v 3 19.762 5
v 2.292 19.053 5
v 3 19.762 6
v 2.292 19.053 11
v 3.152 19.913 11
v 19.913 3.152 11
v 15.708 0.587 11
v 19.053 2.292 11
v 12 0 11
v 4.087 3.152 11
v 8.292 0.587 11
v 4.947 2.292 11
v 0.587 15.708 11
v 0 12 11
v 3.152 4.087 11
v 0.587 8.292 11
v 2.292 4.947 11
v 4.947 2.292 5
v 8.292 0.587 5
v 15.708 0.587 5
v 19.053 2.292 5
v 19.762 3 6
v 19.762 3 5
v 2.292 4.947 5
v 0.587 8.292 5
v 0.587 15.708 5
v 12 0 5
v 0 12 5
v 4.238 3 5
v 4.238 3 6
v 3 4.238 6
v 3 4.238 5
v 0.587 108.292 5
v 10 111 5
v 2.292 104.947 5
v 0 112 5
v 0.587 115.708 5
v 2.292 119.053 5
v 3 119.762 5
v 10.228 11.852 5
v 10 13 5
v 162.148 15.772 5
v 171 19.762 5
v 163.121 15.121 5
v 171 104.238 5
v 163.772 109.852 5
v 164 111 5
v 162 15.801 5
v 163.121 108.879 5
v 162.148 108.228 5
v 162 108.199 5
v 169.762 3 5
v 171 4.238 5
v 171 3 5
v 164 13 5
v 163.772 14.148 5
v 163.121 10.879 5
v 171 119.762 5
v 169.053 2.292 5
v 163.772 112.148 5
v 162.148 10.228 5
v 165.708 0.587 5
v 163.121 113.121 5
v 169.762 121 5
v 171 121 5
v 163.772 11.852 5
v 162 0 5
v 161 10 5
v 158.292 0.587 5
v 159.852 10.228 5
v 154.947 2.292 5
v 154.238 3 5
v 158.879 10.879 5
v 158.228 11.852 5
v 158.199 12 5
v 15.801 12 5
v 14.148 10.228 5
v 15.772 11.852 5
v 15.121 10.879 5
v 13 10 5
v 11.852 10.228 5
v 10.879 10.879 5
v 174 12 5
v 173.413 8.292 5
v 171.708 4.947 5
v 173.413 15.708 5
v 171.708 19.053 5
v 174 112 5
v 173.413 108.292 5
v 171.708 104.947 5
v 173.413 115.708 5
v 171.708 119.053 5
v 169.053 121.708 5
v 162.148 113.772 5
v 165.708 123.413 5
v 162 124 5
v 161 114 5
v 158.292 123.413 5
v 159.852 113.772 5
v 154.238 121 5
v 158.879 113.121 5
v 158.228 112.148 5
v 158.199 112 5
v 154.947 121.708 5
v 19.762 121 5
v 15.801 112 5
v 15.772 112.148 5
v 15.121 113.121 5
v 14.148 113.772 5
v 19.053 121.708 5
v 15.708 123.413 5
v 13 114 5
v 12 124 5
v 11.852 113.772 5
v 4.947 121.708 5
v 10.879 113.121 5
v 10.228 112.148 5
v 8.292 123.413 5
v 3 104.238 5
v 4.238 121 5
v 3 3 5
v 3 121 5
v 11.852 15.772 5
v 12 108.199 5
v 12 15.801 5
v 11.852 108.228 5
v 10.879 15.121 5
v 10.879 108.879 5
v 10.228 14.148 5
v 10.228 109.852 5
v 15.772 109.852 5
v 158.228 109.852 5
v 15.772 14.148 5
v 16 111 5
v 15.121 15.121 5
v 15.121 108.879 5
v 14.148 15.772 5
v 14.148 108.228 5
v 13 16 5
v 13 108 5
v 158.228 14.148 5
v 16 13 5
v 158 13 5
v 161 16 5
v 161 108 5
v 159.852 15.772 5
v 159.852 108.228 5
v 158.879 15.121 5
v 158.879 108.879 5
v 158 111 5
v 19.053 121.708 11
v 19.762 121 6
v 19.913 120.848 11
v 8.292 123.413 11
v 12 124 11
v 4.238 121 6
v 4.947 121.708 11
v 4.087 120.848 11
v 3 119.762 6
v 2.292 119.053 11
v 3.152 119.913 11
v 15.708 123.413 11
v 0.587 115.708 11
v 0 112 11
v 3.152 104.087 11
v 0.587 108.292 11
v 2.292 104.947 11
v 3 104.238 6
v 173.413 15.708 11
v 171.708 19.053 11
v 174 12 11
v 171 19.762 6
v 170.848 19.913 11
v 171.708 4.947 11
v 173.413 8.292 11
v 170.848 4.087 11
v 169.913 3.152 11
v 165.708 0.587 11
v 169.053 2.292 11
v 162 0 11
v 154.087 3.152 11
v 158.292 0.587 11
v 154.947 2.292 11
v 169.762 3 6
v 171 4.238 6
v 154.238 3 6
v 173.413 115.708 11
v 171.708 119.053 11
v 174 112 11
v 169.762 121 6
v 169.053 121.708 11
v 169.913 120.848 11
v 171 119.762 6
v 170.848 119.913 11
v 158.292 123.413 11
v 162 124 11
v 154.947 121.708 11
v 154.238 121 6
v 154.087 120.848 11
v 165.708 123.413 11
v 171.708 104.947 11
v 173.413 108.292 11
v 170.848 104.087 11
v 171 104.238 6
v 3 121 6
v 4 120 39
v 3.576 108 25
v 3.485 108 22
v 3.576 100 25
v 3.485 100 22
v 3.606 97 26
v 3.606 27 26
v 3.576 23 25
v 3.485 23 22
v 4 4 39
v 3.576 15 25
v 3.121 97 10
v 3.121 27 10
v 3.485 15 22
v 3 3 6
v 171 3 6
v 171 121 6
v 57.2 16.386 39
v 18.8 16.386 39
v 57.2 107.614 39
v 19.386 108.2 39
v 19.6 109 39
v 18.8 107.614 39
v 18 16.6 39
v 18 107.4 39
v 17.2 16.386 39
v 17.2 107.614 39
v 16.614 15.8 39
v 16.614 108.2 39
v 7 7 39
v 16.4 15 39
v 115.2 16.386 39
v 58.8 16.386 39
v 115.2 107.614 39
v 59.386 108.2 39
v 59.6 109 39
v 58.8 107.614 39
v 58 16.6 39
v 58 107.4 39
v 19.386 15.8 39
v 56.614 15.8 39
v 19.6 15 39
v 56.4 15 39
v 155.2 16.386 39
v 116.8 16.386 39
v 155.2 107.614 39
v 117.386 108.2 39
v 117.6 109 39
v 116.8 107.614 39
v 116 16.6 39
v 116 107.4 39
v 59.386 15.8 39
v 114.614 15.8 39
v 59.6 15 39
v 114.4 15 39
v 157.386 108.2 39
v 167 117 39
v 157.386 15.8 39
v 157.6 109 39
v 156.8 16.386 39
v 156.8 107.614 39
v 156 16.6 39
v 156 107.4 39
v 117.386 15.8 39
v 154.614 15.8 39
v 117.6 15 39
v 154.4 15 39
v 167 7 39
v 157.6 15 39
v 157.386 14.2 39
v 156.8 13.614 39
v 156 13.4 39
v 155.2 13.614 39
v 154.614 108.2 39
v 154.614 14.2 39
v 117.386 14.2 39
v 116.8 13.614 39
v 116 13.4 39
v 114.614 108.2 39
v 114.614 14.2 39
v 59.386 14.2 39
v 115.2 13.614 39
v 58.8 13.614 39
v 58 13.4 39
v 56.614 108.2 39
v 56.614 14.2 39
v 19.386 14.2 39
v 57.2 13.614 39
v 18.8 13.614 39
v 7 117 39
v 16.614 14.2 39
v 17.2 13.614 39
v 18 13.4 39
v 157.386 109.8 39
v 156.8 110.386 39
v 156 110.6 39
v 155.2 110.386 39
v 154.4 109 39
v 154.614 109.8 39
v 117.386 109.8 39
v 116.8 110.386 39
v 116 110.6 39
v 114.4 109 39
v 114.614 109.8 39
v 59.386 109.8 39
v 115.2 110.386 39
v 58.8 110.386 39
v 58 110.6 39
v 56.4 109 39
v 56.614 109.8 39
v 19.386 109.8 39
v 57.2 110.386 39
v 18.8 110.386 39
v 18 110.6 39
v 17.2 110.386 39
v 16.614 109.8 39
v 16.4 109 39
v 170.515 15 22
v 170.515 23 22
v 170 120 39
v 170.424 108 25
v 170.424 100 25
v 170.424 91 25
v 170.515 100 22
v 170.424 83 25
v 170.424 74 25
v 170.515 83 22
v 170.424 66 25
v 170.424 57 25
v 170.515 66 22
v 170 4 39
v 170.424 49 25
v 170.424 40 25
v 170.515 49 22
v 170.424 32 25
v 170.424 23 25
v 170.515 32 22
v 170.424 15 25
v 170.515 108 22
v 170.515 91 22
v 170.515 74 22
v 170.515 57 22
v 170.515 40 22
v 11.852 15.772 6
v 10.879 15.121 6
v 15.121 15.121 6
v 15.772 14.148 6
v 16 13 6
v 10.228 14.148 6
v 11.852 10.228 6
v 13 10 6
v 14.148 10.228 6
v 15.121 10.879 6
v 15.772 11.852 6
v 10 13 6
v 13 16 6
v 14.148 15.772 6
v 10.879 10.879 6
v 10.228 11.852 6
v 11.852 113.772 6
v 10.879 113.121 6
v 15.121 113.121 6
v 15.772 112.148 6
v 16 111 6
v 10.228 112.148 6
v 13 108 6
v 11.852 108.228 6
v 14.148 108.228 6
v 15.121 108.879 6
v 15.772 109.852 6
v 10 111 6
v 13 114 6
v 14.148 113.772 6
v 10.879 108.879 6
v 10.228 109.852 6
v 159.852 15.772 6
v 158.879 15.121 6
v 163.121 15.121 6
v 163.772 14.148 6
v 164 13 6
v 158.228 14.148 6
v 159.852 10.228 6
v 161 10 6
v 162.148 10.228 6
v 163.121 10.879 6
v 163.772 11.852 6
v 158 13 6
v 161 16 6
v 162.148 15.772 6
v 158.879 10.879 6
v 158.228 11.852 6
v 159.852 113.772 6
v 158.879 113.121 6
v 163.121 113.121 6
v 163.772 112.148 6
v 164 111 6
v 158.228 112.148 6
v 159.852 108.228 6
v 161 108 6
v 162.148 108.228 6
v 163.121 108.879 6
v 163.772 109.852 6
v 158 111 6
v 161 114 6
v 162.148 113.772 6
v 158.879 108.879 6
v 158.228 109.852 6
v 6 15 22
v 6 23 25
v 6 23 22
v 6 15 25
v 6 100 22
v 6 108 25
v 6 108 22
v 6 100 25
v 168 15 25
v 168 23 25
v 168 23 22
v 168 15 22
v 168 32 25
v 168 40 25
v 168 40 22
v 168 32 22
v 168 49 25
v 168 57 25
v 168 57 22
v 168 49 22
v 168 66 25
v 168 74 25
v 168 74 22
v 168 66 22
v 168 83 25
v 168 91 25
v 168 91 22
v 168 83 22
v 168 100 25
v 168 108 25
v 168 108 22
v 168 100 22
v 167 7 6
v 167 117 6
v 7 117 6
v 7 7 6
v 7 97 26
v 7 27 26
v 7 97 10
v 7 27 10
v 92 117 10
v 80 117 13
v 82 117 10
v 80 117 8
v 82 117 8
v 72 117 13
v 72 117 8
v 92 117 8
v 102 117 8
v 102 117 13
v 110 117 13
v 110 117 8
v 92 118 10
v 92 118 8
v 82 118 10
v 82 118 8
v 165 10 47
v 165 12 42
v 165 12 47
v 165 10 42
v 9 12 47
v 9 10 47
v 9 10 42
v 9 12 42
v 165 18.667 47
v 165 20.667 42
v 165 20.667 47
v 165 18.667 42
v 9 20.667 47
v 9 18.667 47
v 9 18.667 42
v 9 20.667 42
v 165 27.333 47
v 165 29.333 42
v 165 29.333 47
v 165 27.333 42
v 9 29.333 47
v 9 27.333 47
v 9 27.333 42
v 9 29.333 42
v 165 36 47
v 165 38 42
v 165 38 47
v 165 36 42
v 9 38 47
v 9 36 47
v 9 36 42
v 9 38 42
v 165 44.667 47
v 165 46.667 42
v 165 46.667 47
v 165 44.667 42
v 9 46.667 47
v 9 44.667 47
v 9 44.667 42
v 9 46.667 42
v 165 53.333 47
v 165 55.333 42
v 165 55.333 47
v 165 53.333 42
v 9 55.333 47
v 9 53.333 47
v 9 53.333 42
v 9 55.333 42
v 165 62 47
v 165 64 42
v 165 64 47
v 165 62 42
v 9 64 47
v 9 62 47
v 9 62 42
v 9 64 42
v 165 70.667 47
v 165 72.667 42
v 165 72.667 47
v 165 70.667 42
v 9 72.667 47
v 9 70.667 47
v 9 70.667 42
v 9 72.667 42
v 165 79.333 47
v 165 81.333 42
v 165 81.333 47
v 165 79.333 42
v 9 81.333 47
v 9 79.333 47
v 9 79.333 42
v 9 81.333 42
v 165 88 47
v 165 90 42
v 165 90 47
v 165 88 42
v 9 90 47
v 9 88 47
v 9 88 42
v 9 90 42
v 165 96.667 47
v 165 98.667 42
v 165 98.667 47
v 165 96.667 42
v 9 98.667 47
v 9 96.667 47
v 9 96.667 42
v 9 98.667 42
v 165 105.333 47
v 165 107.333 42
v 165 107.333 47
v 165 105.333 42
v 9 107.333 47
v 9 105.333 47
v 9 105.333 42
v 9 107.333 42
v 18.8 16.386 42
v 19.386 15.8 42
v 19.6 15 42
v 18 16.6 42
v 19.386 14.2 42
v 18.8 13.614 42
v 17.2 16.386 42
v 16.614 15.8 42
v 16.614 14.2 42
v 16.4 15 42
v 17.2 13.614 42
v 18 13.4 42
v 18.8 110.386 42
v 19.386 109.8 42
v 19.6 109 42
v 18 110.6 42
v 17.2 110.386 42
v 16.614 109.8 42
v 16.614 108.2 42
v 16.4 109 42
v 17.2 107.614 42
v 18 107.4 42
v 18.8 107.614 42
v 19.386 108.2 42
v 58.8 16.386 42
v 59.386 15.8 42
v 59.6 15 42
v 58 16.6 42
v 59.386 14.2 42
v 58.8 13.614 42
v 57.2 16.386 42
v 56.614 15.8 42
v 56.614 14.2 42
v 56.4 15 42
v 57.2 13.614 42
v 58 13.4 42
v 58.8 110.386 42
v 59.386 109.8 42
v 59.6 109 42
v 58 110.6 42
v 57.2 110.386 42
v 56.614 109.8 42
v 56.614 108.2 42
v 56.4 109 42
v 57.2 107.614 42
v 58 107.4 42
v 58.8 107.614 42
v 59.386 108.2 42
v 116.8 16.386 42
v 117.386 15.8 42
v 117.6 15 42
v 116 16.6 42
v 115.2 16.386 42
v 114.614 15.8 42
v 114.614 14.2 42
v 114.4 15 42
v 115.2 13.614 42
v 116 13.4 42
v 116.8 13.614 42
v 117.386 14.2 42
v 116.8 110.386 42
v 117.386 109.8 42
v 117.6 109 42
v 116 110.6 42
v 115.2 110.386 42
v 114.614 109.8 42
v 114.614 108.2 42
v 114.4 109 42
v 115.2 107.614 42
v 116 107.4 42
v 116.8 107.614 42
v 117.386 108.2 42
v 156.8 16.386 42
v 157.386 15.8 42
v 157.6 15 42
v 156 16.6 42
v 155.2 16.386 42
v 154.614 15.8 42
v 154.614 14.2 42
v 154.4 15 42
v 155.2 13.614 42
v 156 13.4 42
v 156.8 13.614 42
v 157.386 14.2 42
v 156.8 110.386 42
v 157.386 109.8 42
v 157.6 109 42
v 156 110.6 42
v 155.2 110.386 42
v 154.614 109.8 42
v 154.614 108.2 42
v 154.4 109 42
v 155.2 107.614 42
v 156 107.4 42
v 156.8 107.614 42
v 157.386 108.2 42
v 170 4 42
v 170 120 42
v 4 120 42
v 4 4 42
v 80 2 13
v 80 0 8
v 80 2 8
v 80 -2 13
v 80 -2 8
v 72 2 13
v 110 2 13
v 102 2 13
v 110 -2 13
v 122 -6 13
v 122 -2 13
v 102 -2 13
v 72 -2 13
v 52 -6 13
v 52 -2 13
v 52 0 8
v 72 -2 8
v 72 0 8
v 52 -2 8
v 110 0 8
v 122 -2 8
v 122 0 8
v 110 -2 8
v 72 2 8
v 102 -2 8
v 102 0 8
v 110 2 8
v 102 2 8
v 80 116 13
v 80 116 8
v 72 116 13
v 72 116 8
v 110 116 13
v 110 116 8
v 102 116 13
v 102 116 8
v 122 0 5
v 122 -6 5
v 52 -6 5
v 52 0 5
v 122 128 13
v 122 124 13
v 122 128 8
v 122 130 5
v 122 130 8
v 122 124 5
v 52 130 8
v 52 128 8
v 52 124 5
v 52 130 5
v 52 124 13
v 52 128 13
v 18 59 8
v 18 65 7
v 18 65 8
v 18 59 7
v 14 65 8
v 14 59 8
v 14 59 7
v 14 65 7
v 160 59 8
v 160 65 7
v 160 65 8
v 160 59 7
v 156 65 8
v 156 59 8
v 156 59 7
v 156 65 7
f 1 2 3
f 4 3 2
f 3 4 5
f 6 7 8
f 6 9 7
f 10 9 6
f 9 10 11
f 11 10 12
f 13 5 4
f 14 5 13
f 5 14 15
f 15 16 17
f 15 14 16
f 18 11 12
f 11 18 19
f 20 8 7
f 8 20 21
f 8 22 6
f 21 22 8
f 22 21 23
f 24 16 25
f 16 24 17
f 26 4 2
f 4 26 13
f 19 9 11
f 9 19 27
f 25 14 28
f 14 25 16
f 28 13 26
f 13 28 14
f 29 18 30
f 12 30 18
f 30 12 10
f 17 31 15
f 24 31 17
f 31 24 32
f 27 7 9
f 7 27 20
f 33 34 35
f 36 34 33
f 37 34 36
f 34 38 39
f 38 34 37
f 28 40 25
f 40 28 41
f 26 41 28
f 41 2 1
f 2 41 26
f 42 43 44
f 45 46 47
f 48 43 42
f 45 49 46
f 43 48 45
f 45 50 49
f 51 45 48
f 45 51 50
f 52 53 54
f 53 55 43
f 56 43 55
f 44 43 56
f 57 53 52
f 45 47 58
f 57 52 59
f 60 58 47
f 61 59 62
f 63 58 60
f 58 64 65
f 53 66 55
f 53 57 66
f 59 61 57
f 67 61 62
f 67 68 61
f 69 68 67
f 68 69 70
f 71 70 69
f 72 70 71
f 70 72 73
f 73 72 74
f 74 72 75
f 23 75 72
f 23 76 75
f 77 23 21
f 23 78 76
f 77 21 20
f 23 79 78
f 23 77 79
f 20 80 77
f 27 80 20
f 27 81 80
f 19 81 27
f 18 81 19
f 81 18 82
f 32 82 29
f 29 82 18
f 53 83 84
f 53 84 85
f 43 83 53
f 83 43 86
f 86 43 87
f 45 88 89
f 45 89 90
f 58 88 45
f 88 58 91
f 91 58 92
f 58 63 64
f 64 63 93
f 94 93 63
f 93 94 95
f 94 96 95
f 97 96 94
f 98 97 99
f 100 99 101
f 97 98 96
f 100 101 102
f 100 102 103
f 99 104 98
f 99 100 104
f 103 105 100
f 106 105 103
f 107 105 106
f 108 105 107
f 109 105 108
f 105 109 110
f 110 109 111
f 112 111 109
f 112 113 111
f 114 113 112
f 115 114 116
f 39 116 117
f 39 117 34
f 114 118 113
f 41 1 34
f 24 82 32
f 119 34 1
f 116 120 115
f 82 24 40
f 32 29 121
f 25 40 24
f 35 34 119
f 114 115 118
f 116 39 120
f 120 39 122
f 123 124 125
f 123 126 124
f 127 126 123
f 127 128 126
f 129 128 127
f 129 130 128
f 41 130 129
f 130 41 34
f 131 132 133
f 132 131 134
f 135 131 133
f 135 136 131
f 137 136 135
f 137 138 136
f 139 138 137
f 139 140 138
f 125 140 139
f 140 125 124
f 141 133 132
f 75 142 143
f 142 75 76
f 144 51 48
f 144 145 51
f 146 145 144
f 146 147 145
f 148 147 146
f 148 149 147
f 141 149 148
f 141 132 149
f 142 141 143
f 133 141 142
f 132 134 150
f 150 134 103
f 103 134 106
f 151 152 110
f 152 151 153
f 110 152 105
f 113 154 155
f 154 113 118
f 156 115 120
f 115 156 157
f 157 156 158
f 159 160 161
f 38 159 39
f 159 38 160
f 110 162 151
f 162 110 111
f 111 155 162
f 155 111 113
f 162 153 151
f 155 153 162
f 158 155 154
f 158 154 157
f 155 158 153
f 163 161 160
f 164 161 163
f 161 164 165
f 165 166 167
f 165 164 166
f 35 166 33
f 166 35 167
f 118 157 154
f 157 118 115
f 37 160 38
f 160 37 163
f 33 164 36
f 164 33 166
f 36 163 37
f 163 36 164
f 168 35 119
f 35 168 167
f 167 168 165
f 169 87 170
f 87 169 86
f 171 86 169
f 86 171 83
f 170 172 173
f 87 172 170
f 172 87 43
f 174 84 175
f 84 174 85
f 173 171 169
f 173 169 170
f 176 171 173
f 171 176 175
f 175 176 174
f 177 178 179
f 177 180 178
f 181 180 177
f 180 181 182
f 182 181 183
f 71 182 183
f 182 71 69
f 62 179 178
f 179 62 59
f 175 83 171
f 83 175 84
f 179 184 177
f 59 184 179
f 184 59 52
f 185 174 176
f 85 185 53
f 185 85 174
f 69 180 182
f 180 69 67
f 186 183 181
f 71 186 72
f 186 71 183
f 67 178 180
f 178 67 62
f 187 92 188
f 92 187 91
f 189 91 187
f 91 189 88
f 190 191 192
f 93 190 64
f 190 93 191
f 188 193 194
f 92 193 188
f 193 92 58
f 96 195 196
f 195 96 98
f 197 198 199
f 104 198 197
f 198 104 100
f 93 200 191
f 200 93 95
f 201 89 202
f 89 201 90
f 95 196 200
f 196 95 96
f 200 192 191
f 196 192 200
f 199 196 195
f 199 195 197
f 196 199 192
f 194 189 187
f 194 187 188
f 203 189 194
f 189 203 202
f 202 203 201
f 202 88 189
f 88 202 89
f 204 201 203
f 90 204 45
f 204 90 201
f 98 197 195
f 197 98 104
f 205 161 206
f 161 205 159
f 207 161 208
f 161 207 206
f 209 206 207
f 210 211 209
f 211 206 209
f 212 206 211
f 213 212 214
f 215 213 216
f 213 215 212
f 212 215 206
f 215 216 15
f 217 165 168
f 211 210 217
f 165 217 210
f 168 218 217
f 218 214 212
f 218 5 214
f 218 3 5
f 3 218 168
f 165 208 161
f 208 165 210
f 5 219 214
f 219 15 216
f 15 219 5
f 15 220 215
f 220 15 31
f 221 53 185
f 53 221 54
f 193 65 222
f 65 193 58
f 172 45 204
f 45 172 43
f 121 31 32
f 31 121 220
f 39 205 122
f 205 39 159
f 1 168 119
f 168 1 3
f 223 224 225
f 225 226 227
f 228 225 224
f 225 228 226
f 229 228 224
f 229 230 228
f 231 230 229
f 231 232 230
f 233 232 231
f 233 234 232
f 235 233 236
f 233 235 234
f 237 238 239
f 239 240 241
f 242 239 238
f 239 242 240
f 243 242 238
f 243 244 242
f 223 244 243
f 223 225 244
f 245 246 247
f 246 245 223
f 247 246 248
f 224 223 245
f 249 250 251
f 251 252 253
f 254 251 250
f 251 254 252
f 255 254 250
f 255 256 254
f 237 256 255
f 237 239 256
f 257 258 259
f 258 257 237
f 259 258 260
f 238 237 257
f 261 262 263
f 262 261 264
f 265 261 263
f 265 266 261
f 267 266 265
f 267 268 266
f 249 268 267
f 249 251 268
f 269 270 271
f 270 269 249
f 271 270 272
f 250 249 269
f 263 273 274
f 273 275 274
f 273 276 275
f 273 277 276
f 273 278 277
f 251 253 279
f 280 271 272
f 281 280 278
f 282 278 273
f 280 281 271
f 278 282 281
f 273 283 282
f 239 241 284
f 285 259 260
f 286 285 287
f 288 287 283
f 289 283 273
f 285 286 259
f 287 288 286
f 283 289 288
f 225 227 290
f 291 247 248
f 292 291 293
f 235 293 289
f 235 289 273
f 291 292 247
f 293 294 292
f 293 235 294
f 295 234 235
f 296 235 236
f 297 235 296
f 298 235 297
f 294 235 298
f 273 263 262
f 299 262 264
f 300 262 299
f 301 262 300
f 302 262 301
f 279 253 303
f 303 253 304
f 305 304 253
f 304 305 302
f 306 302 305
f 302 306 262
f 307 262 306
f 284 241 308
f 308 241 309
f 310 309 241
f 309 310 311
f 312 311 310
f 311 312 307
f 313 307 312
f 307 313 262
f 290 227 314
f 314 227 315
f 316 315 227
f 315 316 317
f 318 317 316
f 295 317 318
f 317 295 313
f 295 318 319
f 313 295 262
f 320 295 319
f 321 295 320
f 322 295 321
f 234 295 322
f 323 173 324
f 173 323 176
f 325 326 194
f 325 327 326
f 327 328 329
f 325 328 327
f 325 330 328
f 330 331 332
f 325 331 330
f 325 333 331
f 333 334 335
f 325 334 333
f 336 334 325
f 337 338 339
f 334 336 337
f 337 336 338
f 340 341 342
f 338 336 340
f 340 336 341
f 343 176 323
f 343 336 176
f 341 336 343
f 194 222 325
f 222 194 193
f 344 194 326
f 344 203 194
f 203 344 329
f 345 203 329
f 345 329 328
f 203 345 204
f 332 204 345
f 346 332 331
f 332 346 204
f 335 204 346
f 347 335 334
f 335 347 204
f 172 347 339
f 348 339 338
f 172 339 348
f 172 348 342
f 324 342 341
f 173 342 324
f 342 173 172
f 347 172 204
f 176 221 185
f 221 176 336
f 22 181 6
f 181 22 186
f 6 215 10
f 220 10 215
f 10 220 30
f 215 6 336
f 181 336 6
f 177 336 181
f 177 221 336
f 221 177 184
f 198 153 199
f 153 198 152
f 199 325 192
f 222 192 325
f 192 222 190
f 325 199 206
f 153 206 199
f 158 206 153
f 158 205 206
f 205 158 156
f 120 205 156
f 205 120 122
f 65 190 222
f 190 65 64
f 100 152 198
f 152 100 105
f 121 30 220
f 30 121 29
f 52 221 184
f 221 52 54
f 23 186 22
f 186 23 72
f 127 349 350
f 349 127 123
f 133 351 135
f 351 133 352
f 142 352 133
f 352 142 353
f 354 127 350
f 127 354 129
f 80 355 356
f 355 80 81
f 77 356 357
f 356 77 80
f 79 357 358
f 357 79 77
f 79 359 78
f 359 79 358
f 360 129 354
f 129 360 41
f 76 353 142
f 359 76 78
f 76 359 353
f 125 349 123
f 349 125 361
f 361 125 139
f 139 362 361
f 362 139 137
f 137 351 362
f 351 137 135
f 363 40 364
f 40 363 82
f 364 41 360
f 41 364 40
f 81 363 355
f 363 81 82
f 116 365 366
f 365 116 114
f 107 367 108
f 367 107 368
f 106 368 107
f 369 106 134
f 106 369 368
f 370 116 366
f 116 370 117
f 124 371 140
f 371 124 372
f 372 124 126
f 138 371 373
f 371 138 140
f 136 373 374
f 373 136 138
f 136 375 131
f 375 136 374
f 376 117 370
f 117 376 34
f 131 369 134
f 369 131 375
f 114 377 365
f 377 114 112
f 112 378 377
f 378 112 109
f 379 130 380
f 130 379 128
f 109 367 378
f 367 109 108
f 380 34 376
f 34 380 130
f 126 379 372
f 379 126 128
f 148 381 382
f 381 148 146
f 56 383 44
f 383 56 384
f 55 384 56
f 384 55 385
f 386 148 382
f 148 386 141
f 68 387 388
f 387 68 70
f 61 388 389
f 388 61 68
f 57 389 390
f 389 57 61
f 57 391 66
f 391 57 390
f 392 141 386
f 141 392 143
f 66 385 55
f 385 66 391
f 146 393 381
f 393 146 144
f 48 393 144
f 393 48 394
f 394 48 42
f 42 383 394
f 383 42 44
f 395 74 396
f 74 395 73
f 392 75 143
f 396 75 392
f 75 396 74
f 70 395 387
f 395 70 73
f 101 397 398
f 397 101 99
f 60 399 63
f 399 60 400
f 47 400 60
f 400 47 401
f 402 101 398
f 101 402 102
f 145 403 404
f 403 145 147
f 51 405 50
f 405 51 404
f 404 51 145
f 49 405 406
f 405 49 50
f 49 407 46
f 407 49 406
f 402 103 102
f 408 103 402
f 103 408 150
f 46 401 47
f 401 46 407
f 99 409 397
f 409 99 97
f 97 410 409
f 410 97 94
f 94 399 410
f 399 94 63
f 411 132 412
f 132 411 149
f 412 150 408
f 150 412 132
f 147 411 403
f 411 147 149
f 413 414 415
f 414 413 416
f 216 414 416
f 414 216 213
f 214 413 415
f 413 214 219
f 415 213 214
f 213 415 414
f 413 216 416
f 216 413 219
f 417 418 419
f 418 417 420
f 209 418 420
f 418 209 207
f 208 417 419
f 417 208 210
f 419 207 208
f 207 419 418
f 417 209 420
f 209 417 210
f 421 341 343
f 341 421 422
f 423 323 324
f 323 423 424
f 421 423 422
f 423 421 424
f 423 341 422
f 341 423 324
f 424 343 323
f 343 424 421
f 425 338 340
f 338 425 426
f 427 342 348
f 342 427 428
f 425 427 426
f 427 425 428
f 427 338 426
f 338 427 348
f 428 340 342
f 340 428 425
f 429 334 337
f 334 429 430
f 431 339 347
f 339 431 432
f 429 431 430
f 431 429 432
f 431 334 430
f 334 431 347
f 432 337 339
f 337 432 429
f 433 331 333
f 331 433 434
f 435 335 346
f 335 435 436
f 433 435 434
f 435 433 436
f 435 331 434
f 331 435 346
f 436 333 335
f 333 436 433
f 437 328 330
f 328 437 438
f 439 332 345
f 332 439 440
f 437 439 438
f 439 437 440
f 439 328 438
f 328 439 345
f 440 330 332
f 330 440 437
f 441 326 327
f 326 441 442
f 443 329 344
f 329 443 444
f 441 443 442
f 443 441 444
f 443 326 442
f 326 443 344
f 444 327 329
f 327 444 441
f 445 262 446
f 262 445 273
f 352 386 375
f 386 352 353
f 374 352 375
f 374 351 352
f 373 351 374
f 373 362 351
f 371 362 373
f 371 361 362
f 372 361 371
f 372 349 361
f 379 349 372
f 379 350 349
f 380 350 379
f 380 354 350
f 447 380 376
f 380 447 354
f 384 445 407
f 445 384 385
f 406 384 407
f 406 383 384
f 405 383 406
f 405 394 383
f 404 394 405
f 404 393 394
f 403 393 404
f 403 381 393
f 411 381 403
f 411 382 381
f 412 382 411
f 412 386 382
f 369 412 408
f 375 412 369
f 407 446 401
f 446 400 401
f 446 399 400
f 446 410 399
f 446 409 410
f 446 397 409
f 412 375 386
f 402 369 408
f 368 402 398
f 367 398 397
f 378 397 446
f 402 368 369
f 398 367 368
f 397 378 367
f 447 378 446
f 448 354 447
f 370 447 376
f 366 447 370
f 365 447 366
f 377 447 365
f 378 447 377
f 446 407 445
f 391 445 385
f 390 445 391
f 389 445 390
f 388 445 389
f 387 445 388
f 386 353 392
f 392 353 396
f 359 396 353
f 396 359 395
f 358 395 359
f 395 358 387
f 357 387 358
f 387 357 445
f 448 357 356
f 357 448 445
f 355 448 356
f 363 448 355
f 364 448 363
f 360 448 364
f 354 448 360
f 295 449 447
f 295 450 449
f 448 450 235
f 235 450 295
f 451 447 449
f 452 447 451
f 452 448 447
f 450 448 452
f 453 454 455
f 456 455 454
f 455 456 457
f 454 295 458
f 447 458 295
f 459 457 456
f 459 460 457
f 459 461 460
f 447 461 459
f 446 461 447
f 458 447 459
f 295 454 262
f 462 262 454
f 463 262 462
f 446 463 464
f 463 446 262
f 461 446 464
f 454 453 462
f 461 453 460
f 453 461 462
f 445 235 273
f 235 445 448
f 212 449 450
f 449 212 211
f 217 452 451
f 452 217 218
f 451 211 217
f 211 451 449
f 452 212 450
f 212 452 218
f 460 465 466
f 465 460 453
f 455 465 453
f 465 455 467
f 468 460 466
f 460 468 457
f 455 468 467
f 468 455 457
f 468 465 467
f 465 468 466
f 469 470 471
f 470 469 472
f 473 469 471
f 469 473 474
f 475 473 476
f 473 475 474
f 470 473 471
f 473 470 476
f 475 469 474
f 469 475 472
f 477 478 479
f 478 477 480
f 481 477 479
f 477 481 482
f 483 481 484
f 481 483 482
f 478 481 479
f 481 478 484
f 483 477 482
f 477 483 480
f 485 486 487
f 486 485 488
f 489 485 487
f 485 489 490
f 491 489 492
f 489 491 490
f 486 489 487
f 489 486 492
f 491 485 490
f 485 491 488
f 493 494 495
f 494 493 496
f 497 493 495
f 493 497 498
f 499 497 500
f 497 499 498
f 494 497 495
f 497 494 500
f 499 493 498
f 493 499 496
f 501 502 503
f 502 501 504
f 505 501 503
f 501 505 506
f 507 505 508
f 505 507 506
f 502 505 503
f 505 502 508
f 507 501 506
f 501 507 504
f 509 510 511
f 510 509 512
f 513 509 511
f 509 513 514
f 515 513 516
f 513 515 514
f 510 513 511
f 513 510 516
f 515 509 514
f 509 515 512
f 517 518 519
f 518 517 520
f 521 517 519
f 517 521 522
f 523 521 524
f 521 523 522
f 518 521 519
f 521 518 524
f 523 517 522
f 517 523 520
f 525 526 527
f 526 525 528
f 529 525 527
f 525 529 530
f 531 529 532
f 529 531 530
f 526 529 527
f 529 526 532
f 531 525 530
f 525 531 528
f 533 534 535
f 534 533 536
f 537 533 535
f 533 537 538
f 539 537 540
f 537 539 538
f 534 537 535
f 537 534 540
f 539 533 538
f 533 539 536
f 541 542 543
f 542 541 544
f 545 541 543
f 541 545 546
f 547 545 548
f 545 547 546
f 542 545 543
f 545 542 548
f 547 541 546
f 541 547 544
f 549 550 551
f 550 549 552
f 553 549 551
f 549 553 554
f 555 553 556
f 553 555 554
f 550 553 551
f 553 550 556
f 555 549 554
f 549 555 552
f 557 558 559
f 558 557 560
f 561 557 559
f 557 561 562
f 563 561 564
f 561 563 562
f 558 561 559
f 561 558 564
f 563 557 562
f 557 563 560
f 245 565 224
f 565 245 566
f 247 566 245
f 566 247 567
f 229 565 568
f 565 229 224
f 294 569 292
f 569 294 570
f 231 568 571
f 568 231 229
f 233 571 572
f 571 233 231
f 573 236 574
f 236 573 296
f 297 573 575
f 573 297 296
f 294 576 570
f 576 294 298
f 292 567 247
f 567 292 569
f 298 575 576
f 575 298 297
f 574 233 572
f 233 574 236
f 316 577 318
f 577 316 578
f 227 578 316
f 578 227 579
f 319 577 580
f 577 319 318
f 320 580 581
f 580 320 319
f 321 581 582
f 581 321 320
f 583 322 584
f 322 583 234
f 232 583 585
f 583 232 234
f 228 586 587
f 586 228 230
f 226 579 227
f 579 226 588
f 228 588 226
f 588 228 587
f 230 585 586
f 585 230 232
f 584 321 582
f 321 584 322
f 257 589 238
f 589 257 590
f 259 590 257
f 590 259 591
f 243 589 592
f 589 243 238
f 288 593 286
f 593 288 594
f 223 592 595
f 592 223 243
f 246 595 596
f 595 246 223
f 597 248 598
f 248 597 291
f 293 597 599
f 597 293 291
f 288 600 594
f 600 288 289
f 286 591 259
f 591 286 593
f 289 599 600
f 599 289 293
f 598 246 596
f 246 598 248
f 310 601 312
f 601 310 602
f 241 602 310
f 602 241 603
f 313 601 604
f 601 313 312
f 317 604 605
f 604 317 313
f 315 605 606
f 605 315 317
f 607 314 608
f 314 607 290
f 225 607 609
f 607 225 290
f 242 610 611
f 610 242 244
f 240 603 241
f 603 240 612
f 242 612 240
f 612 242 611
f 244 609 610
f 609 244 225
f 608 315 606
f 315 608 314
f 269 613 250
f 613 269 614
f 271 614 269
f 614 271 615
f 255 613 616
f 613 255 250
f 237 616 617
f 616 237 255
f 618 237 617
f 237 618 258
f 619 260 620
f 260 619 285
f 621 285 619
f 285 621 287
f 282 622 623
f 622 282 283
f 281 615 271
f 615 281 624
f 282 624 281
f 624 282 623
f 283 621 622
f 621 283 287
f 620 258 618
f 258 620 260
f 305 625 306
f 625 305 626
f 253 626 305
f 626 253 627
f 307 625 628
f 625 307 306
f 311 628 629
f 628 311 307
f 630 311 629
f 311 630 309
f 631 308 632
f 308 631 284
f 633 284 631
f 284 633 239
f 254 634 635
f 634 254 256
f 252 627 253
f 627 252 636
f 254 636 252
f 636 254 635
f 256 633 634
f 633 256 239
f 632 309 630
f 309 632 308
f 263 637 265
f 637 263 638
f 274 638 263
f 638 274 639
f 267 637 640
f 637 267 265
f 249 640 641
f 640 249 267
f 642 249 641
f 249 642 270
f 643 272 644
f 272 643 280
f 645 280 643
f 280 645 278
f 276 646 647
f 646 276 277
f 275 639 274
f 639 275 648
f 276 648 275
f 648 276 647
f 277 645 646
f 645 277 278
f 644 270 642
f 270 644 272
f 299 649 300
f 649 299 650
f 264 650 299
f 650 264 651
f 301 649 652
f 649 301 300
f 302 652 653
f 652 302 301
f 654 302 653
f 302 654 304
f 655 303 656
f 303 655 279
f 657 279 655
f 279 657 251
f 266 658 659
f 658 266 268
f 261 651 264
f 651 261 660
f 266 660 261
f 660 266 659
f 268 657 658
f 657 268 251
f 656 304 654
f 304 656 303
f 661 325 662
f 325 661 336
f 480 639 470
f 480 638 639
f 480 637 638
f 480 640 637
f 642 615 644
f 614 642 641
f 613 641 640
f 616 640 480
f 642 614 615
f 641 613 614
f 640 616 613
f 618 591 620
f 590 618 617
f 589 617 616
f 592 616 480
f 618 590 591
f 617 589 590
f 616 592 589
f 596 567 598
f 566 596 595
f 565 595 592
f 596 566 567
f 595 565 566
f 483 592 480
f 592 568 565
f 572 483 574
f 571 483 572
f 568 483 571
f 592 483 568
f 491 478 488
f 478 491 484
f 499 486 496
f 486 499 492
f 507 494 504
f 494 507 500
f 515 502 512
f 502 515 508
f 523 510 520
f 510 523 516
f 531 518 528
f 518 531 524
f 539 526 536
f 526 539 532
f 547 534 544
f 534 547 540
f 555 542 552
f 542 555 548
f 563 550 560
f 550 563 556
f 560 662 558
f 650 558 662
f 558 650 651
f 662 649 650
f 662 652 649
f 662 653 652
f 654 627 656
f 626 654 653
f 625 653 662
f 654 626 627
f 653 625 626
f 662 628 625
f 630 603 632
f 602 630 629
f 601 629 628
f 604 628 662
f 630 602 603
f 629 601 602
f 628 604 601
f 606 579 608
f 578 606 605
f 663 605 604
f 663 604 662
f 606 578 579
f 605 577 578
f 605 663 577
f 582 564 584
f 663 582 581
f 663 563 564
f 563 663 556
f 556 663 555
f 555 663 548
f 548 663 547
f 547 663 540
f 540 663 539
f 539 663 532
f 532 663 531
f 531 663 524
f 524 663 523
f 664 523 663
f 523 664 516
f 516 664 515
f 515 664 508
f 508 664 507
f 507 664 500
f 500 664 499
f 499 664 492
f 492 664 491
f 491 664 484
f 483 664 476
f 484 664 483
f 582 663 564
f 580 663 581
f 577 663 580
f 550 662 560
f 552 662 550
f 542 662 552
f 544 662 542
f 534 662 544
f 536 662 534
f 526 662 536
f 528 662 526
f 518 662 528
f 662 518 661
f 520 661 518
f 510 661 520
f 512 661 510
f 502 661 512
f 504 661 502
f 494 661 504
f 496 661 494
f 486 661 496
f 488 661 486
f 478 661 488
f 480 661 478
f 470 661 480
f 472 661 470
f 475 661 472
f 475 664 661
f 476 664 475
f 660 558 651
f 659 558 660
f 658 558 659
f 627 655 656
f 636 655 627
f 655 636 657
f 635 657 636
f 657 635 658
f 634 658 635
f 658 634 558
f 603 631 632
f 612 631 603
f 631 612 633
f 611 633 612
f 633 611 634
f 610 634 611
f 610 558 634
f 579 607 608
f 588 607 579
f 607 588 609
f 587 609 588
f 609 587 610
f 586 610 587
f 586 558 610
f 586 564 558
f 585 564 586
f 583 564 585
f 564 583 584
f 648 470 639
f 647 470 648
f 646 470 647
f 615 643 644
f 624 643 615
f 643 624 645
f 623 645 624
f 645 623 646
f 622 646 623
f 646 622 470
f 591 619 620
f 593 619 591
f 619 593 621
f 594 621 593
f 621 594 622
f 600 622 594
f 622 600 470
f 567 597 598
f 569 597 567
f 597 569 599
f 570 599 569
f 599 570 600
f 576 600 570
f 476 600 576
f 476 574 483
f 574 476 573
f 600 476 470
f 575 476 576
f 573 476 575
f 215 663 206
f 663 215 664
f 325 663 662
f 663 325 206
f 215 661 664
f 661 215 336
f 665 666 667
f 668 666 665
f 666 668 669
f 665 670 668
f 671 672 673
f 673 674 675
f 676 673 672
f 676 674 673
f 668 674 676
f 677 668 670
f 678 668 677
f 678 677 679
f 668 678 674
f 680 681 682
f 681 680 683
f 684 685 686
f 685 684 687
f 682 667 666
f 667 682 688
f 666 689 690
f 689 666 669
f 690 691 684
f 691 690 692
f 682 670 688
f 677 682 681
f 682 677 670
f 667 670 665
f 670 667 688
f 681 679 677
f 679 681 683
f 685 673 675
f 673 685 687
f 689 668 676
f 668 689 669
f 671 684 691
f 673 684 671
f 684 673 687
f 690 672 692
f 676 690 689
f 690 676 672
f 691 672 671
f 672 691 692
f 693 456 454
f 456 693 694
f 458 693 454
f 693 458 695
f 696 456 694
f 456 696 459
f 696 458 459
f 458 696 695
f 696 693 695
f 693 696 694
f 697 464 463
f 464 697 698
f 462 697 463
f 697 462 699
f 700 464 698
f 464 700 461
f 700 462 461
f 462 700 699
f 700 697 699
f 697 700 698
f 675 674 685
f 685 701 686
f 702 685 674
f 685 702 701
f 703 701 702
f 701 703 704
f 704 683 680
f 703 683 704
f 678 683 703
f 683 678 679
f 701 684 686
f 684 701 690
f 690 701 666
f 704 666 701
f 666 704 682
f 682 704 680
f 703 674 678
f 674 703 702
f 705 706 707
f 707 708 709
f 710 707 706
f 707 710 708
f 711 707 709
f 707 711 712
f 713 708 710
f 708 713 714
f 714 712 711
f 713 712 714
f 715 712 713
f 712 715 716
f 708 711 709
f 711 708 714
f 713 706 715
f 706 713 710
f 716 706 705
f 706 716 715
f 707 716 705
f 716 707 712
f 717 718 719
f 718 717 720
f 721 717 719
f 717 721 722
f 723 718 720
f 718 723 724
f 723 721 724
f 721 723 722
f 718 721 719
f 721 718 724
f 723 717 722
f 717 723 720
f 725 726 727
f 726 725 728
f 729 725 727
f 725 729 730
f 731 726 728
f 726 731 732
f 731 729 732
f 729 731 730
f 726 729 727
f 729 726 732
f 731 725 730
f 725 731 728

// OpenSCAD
// ============================================================================
// 7100CPT-T "Tactical" — Olive drab military-style with heatsink fins
// Matches the landscape military-green render style
// ============================================================================
// Envelope: 180mm x 130mm x 42mm (larger, rugged)

pcb_x = 160;
pcb_y = 110;
wall = 4;
clearance = 3;

encl_x = pcb_x + 2*wall + 2*clearance; // 180
encl_y = pcb_y + 2*wall + 2*clearance; // 130
encl_z = 42;
base_z = 5;
inner_h = encl_z - base_z - 3; // lid height = 3

// Heat sink fins
fin_count = 12;
fin_height = 8;
fin_thick = 2;
fin_gap = (encl_y - 20) / fin_count;

// Corner bumpers
bumper_r = 12;
bumper_h = 6;

// Olive drab palette (military green / khaki)
// Body: dark olive #3C3A2E
// Accent: lighter olive #5B5230
// Highlight: bright green #769728 (small accents)
// Hardware: flat gray #625E57

$fn = 32;

// ====================================================================
// MAIN BODY — trapezoidal cross-section with corner bumpers
// ====================================================================
module body() {
  difference() {
    union() {
      // Main body with slight taper
      hull() {
        translate([wall, wall, base_z])
          cube([encl_x - 2*wall, encl_y - 2*wall, inner_h]);
        // Slightly wider at bottom for taper
        translate([wall - 1, wall - 1, base_z])
          cube([encl_x - 2*wall + 2, encl_y - 2*wall + 2, 1]);
      }

      // Corner bumpers
      for (x = [bumper_r, encl_x - bumper_r])
        for (y = [bumper_r, encl_y - bumper_r])
          translate([x, y, base_z])
            cylinder(r = bumper_r, h = bumper_h, $fn = 20);
    }

    // Interior cavity
    translate([wall + clearance, wall + clearance, base_z + 1])
      cube([pcb_x, pcb_y, inner_h + 2]);

    // PCB standoffs (M3)
    for (x = [wall + clearance + 6, wall + clearance + pcb_x - 6])
      for (y = [wall + clearance + 6, wall + clearance + pcb_y - 6])
        translate([x, y, base_z]) {
          cylinder(h = 4, r = 3, $fn = 16);
          cylinder(h = 8, r = 1.6, $fn = 16);
        }

    // Connector cutouts - recessed in olive-drab gasket panels
    // Main connector (left, recessed panel)
    translate([wall - 2, (encl_y - 70)/2, base_z + 5])
      cube([wall + 4, 70, 16]);

    // CAN connectors (top, recessed)
    for (d = [25, 55]) {
      translate([wall + clearance + d, encl_y - wall/2, base_z + 6])
        cube([22, wall + 2, 12]);
    }

    // USB-C (right side)
    translate([encl_x - wall/2, encl_y - 40, base_z + 9])
      cube([wall + 2, 12, 5]);

    // Power LED indicator
    translate([encl_x/2 - 5, encl_y - wall - 6, base_z + 3])
      cube([10, 4, 2]);

    // Side recessed grip grooves (both sides)
    for (side_x = [2, encl_x - wall - 2]) {
      for (i = [0:5]) {
        translate([side_x, 15 + i * 17, base_z + inner_h/2])
          cube([wall, 8, 3]);
      }
    }

    // Weight reduction: bottom pocket
    translate([wall + 8, wall + 8, 0.5])
      cube([encl_x - 2*wall - 16, encl_y - 2*wall - 16, base_z - 0.5]);

    // Brand plate recess
    translate([encl_x/2 - 18, encl_y/2 - 5, base_z + inner_h])
      cube([36, 10, 0.5]);
  }
}

// ====================================================================
// HEAT SINK FINS (top, military-green)
// ====================================================================
module fins() {
  for (i = [0:fin_count-1]) {
    translate([wall + 5, 10 + i * fin_gap, base_z + inner_h])
      cube([encl_x - 2*wall - 10, fin_thick, fin_height]);
  }
}

// ====================================================================
// LID PLATE
// ====================================================================
module lid() {
  difference() {
    translate([wall, wall, base_z + inner_h])
      cube([encl_x - 2*wall, encl_y - 2*wall, 3]);

    // Screw holes (8x M3)
    for (x = [18, encl_x/3, 2*encl_x/3, encl_x - 18])
      for (y = [15, encl_y - 15])
        translate([x, y, base_z + inner_h - 0.1])
          cylinder(h = 3.2, r = 1.6, $fn = 12);
  }
}

// ====================================================================
// MOUNTING BRACKETS (integrated, heavy-duty)
// ====================================================================
module mounting_brackets() {
  color("#4A483B")
  for (side = [-1, 1]) {
    translate([encl_x/2 - 35, side > 0 ? encl_y : -6, base_z])
      cube([70, 6, 3]);
    translate([encl_x/2 - 35, side > 0 ? encl_y : -6, base_z + 3])
      cube([70, 4, 5]);
    // Slotted mounting holes
    for (x = [encl_x/2 - 15, encl_x/2 + 15]) {
      translate([x, side > 0 ? encl_y - 8 : -2, base_z + 3])
        cube([8, 4, 5]);
    }
  }
}

// ====================================================================
// FULL ASSEMBLY
// ====================================================================
module full_assembly() {
  color("#3C3A2E") body();          // Dark olive body
  color("#5B5230") fins();          // Lighter olive fins
  color("#4A483B") lid();           // Medium olive lid
  mounting_brackets();

  // Bright green accent stripe
  color("#769728", 0.8) {
    translate([wall + 10, encl_y/2 - 3, base_z + 2])
      cube([4, 6, 1]);
    translate([encl_x - wall - 14, encl_y/2 - 3, base_z + 2])
      cube([4, 6, 1]);
  }
}

full_assembly();

// Isometric camera hint
// openscad --camera 90,65,60,40,25,0,380 --imgsize 1200,900
